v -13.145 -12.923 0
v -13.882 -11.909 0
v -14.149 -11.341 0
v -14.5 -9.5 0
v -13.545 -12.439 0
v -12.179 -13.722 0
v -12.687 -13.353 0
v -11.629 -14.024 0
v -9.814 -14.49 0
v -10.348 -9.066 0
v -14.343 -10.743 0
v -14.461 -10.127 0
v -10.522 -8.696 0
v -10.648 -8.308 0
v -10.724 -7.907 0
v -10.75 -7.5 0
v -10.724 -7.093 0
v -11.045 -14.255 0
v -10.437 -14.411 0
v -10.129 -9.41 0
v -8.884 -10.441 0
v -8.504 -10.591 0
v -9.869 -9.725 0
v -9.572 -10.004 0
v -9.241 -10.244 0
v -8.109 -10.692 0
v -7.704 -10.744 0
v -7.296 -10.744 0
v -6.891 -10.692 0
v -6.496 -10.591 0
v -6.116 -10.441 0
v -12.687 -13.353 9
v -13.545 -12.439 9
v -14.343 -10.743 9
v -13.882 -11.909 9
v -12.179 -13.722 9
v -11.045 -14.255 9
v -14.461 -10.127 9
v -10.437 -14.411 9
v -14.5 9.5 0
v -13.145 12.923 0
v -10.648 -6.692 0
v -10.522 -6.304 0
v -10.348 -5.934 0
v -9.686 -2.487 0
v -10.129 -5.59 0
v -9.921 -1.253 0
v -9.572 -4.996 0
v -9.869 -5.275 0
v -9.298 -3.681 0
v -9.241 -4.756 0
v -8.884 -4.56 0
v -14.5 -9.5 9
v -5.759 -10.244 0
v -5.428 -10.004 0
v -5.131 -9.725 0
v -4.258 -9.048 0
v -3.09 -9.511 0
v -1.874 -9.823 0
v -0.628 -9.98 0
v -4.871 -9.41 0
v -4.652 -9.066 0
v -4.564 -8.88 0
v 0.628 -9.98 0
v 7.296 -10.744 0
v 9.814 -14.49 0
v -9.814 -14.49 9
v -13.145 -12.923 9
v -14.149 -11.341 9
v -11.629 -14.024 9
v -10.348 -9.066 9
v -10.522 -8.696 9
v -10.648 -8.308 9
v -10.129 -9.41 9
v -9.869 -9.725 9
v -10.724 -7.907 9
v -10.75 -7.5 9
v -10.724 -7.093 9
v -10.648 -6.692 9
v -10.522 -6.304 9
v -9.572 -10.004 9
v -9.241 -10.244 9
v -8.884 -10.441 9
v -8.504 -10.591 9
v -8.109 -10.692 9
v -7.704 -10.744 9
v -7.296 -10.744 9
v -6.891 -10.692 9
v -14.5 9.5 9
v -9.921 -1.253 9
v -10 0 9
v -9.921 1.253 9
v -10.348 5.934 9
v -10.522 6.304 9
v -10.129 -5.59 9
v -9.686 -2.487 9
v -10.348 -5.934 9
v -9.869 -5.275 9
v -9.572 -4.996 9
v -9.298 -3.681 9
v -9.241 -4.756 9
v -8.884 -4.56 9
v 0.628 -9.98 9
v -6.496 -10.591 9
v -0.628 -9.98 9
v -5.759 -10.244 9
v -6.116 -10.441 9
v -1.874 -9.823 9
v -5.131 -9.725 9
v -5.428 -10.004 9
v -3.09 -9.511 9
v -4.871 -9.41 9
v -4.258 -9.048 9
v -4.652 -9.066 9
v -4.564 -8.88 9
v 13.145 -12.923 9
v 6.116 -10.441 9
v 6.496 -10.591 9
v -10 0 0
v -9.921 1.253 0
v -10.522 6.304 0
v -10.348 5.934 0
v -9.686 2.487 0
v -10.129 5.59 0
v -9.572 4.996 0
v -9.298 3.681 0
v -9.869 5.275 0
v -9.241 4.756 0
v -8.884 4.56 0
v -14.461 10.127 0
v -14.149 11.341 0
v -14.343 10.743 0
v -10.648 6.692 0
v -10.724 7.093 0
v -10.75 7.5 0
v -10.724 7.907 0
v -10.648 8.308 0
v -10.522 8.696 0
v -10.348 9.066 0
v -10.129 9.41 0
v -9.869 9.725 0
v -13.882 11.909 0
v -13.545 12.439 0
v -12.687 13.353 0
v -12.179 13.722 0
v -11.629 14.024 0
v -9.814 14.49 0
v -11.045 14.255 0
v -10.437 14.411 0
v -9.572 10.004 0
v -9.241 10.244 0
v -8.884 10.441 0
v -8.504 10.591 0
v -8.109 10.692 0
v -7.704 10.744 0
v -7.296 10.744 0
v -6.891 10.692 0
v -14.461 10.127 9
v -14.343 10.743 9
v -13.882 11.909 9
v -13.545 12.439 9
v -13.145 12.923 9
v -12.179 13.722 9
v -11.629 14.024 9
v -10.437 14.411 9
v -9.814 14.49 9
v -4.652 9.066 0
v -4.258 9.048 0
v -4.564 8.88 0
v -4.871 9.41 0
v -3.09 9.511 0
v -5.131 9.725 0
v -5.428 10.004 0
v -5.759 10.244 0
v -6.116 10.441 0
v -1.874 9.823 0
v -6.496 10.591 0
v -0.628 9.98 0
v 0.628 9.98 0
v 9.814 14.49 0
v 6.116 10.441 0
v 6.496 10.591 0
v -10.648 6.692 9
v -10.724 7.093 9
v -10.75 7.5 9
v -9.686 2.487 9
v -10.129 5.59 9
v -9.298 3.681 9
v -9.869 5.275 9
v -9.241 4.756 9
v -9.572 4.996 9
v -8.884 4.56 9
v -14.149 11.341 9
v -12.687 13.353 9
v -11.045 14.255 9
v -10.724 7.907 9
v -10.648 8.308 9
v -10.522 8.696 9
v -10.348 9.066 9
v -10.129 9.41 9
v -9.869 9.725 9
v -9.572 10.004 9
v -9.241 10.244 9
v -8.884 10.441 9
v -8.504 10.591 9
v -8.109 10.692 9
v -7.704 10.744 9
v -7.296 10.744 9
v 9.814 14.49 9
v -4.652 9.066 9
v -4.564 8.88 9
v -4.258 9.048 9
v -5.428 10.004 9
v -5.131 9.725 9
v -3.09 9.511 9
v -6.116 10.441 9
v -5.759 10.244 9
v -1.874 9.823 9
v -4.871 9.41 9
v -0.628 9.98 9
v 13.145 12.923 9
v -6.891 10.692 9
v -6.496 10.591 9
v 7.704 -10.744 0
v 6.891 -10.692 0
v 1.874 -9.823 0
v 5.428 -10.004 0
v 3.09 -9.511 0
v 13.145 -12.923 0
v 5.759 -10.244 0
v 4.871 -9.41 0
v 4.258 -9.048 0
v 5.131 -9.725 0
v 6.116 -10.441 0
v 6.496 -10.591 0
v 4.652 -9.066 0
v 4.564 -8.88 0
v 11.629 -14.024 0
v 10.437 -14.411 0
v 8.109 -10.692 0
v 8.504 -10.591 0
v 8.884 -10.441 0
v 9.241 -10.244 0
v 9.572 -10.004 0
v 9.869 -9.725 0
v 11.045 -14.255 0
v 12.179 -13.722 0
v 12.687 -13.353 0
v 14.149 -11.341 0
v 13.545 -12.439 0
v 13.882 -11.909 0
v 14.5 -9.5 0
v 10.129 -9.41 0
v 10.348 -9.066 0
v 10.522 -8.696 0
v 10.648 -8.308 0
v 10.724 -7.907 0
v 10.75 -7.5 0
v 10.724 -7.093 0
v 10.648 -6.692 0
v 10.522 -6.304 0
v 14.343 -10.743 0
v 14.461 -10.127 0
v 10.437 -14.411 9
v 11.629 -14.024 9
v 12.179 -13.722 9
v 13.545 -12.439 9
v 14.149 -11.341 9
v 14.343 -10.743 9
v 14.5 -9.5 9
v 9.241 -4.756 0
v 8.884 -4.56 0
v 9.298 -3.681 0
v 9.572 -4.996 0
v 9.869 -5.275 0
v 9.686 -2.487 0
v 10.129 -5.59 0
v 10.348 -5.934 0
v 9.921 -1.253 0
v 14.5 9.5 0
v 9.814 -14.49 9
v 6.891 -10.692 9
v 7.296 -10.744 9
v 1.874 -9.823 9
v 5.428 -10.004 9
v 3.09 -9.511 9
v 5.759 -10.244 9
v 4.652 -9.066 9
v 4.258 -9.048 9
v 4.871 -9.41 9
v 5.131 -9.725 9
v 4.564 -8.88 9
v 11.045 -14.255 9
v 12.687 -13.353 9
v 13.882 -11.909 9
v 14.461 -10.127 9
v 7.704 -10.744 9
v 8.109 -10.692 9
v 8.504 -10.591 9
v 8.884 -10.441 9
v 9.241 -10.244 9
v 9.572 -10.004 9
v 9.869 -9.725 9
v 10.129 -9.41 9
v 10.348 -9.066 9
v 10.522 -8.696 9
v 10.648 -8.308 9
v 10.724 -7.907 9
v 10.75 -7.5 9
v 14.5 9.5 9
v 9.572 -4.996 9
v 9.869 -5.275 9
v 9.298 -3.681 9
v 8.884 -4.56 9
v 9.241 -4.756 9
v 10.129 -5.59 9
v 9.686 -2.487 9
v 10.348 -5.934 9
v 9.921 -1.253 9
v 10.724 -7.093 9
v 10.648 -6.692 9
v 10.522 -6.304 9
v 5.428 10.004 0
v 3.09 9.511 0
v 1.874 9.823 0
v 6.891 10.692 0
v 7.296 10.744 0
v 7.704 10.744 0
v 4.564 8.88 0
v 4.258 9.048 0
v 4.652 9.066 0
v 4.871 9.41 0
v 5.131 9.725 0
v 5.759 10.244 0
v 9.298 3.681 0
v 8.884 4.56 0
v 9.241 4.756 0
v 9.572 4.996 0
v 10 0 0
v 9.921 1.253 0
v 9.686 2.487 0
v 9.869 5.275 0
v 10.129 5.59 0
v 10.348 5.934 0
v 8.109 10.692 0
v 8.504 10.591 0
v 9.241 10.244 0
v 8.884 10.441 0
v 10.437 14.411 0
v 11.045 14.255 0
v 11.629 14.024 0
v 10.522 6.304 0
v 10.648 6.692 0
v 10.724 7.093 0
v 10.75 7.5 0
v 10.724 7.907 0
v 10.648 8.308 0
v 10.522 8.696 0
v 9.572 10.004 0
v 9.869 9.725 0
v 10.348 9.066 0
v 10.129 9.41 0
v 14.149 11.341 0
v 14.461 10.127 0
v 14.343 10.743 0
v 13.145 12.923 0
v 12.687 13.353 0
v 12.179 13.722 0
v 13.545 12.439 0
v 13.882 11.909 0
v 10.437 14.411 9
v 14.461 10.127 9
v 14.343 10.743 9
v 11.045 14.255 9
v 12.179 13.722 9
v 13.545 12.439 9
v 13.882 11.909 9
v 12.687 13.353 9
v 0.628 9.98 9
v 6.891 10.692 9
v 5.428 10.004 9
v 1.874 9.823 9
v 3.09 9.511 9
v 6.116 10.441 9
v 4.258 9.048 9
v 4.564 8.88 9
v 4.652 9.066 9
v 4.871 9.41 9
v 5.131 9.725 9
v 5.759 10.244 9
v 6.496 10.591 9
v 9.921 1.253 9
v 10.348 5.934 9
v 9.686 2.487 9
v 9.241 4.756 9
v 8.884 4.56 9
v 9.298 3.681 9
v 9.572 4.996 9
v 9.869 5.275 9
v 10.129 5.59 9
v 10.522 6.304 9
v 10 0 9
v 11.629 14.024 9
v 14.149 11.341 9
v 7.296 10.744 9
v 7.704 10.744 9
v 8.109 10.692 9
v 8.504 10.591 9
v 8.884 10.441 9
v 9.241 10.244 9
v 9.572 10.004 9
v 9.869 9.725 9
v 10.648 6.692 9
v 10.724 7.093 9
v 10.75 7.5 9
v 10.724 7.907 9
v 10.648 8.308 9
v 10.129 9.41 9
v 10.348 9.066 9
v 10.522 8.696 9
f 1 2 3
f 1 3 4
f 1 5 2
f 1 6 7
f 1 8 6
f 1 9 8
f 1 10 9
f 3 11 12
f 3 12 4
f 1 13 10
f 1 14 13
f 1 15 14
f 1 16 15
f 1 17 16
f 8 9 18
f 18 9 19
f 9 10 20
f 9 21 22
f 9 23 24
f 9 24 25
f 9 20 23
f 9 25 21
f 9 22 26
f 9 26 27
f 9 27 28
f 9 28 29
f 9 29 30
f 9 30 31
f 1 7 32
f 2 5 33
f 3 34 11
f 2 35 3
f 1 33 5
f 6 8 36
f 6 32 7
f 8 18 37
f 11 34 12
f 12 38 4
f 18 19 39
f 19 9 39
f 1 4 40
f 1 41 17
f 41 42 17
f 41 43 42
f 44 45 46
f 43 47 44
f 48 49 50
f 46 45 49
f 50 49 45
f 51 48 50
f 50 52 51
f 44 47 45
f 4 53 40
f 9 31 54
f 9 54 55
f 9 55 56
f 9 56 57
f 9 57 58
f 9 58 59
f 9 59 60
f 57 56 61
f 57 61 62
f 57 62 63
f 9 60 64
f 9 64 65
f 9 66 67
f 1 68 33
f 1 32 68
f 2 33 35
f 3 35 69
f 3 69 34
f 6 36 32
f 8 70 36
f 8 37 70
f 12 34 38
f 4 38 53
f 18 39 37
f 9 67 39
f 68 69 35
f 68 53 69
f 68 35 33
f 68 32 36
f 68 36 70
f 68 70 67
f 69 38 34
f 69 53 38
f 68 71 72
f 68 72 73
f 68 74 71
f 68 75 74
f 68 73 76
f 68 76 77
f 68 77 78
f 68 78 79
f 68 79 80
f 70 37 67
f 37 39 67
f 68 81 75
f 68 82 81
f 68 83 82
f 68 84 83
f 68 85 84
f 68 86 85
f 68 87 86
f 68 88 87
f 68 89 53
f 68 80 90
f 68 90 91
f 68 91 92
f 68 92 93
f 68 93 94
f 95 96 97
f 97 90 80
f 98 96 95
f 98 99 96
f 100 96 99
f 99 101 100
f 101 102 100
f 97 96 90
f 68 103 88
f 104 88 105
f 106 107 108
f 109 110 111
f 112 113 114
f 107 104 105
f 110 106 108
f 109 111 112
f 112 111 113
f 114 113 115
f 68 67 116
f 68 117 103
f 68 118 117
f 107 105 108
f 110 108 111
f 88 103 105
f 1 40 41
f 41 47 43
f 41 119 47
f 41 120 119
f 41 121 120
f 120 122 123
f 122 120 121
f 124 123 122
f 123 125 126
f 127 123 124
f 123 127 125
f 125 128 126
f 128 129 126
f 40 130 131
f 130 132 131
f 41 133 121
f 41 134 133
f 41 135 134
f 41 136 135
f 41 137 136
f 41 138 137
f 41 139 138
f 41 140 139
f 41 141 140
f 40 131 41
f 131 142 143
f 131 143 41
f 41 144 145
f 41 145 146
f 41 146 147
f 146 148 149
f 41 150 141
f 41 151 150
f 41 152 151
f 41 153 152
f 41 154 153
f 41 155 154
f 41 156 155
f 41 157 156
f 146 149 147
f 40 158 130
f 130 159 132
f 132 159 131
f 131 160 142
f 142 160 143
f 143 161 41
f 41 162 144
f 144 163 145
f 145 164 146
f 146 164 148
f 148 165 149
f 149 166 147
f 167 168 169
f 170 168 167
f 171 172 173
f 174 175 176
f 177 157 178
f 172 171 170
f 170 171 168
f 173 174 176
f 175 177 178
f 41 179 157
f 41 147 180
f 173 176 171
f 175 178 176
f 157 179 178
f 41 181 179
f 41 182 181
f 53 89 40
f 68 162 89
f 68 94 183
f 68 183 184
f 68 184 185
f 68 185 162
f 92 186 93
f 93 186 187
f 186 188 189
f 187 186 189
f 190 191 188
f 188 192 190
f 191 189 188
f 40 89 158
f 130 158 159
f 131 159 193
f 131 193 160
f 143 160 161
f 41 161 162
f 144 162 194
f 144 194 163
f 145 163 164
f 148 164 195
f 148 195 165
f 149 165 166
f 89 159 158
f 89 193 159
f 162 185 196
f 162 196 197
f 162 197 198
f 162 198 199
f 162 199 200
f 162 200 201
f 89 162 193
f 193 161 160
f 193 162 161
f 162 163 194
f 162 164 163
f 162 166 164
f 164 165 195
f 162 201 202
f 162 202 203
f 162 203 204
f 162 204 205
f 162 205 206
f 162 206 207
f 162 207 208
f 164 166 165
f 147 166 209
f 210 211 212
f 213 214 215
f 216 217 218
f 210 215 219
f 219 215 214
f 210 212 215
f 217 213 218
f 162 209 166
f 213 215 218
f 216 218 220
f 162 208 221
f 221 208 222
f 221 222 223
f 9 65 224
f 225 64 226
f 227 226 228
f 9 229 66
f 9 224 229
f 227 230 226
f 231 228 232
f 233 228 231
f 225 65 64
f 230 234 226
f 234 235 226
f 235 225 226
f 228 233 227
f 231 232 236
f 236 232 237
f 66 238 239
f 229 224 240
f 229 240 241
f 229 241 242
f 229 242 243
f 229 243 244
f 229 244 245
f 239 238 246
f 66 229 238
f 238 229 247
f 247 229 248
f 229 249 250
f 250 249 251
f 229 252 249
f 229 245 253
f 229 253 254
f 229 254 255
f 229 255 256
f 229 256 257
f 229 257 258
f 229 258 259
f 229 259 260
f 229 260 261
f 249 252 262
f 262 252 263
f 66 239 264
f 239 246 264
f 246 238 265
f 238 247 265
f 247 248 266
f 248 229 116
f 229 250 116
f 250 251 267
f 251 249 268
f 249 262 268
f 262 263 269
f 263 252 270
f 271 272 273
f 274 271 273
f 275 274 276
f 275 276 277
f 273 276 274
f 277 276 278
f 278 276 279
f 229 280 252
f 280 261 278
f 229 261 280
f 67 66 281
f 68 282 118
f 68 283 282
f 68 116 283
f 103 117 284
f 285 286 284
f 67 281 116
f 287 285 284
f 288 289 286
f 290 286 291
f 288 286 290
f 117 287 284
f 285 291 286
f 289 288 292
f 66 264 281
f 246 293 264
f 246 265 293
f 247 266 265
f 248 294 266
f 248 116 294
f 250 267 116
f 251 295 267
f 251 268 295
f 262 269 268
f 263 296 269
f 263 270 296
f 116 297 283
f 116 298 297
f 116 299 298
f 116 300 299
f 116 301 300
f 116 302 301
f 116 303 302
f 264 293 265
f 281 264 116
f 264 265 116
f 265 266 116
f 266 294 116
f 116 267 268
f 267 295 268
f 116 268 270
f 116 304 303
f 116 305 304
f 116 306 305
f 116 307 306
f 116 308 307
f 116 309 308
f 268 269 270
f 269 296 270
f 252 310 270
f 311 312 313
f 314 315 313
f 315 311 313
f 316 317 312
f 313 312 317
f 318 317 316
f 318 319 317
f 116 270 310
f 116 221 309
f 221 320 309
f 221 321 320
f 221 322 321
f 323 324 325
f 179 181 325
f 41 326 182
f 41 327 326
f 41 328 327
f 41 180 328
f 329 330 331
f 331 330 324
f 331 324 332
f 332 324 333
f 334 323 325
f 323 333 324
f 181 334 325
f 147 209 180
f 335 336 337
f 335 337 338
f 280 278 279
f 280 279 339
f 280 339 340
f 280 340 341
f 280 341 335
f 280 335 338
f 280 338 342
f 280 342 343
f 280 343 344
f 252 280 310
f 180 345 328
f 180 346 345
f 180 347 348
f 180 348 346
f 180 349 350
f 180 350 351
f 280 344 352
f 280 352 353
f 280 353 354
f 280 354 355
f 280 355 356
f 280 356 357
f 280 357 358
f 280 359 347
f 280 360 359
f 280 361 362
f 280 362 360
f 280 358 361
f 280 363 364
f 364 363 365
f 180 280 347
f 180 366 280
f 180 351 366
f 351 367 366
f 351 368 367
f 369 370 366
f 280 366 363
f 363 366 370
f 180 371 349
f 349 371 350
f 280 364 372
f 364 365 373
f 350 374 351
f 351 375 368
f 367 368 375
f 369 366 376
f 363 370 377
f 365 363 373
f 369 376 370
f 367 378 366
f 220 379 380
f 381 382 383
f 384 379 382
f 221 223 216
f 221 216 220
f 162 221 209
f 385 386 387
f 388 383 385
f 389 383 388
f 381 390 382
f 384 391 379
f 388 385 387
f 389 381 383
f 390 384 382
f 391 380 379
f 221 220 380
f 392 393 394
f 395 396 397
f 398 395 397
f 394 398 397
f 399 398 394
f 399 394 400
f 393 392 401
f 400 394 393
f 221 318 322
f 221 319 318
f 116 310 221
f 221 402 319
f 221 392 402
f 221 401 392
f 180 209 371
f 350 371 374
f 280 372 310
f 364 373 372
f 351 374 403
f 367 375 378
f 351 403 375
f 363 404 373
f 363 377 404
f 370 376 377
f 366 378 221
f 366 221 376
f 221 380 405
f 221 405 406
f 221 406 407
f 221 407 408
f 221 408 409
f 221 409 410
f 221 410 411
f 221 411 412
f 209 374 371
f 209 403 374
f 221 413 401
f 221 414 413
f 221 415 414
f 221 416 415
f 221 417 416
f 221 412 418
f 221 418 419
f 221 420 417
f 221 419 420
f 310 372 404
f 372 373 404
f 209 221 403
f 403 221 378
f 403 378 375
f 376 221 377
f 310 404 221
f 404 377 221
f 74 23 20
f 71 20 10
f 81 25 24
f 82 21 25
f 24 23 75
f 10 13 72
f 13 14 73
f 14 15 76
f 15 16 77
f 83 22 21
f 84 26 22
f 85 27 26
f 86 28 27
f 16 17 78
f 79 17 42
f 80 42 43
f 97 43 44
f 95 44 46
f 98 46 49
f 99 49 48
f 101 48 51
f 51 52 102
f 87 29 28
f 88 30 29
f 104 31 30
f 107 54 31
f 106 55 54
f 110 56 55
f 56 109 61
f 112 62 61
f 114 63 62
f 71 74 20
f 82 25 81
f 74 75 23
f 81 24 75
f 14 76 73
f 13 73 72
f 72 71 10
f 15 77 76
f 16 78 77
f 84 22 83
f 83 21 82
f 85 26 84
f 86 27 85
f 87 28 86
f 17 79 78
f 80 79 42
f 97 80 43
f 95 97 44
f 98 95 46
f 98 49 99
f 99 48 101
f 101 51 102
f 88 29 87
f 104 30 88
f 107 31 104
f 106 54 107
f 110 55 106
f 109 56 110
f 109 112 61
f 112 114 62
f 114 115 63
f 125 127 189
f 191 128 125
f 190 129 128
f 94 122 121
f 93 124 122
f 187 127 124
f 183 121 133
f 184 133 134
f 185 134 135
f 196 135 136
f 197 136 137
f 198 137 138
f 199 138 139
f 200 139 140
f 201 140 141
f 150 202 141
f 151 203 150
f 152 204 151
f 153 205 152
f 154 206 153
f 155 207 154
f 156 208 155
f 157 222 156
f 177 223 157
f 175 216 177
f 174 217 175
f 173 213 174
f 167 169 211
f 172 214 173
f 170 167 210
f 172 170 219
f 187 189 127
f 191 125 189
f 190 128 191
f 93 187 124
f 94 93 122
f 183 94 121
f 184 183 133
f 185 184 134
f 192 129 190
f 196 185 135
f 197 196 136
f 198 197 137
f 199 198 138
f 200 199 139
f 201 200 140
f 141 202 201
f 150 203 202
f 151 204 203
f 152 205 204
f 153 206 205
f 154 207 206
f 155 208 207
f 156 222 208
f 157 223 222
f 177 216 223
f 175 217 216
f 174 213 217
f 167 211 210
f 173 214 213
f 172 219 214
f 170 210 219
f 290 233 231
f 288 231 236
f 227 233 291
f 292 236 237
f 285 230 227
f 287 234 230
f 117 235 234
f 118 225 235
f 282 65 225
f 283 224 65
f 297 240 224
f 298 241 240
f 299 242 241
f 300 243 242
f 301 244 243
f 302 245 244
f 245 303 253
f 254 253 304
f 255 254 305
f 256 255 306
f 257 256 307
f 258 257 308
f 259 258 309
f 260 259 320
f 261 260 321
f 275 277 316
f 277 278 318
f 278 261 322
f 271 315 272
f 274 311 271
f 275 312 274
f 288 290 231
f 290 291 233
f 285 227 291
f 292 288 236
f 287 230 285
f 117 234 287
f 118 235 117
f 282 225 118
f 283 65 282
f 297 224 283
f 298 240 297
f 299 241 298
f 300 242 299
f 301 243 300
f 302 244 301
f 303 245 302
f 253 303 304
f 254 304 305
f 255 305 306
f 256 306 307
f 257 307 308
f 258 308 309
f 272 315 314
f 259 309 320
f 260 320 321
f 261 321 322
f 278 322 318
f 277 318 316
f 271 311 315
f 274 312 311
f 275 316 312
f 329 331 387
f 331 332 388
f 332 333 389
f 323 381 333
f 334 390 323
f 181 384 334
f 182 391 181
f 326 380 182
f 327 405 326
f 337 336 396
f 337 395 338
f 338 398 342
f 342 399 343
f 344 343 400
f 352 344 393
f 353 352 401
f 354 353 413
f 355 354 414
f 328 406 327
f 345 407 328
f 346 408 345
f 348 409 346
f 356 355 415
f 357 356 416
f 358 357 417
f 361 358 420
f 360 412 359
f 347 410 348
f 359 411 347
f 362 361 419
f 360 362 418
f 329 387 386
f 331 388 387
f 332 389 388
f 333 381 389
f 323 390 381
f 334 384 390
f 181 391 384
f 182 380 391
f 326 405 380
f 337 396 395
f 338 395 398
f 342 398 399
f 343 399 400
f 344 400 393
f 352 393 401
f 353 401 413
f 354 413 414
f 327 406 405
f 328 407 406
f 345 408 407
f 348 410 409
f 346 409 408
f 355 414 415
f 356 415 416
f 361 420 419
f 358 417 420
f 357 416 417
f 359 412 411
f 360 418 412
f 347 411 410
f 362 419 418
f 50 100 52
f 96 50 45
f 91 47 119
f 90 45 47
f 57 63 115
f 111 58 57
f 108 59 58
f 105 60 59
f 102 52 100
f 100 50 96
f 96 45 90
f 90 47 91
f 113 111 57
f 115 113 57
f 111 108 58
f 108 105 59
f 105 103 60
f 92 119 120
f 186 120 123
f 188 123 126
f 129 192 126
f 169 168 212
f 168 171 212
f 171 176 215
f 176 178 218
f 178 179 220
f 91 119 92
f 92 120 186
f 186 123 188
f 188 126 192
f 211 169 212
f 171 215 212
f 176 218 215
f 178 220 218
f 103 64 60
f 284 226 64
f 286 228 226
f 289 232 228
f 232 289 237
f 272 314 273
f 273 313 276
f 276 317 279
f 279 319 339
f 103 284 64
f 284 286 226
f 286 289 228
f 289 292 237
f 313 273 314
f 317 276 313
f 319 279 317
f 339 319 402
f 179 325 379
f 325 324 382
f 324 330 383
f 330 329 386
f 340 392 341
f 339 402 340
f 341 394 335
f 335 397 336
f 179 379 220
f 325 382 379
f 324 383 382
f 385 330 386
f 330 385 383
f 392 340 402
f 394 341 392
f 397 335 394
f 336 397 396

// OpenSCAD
$fn = 50;

difference() {
	union() {
		hull() {
			translate(v = [-9.5, 9.5, 0]) {
				cylinder(h = 9, r = 5);
			}
			translate(v = [9.5, 9.5, 0]) {
				cylinder(h = 9, r = 5);
			}
			translate(v = [-9.5, -9.5, 0]) {
				cylinder(h = 9, r = 5);
			}
			translate(v = [9.5, -9.5, 0]) {
				cylinder(h = 9, r = 5);
			}
		}
	}
	union() {
		translate(v = [-7.5, -7.5, -100.0]) {
			cylinder(h = 200, r = 3.25);
		}
		translate(v = [-7.5, 7.5, -100.0]) {
			cylinder(h = 200, r = 3.25);
		}
		translate(v = [7.5, -7.5, -100.0]) {
			cylinder(h = 200, r = 3.25);
		}
		translate(v = [7.5, 7.5, -100.0]) {
			cylinder(h = 200, r = 3.25);
		}
		translate(v = [-7.5, -7.5, -100.0]) {
			cylinder(h = 200, r = 1.8);
		}
		translate(v = [-7.5, 7.5, -100.0]) {
			cylinder(h = 200, r = 1.8);
		}
		translate(v = [7.5, -7.5, -100.0]) {
			cylinder(h = 200, r = 1.8);
		}
		translate(v = [7.5, 7.5, -100.0]) {
			cylinder(h = 200, r = 1.8);
		}
		cylinder(h = 9, r = 10.0);
	}
}
